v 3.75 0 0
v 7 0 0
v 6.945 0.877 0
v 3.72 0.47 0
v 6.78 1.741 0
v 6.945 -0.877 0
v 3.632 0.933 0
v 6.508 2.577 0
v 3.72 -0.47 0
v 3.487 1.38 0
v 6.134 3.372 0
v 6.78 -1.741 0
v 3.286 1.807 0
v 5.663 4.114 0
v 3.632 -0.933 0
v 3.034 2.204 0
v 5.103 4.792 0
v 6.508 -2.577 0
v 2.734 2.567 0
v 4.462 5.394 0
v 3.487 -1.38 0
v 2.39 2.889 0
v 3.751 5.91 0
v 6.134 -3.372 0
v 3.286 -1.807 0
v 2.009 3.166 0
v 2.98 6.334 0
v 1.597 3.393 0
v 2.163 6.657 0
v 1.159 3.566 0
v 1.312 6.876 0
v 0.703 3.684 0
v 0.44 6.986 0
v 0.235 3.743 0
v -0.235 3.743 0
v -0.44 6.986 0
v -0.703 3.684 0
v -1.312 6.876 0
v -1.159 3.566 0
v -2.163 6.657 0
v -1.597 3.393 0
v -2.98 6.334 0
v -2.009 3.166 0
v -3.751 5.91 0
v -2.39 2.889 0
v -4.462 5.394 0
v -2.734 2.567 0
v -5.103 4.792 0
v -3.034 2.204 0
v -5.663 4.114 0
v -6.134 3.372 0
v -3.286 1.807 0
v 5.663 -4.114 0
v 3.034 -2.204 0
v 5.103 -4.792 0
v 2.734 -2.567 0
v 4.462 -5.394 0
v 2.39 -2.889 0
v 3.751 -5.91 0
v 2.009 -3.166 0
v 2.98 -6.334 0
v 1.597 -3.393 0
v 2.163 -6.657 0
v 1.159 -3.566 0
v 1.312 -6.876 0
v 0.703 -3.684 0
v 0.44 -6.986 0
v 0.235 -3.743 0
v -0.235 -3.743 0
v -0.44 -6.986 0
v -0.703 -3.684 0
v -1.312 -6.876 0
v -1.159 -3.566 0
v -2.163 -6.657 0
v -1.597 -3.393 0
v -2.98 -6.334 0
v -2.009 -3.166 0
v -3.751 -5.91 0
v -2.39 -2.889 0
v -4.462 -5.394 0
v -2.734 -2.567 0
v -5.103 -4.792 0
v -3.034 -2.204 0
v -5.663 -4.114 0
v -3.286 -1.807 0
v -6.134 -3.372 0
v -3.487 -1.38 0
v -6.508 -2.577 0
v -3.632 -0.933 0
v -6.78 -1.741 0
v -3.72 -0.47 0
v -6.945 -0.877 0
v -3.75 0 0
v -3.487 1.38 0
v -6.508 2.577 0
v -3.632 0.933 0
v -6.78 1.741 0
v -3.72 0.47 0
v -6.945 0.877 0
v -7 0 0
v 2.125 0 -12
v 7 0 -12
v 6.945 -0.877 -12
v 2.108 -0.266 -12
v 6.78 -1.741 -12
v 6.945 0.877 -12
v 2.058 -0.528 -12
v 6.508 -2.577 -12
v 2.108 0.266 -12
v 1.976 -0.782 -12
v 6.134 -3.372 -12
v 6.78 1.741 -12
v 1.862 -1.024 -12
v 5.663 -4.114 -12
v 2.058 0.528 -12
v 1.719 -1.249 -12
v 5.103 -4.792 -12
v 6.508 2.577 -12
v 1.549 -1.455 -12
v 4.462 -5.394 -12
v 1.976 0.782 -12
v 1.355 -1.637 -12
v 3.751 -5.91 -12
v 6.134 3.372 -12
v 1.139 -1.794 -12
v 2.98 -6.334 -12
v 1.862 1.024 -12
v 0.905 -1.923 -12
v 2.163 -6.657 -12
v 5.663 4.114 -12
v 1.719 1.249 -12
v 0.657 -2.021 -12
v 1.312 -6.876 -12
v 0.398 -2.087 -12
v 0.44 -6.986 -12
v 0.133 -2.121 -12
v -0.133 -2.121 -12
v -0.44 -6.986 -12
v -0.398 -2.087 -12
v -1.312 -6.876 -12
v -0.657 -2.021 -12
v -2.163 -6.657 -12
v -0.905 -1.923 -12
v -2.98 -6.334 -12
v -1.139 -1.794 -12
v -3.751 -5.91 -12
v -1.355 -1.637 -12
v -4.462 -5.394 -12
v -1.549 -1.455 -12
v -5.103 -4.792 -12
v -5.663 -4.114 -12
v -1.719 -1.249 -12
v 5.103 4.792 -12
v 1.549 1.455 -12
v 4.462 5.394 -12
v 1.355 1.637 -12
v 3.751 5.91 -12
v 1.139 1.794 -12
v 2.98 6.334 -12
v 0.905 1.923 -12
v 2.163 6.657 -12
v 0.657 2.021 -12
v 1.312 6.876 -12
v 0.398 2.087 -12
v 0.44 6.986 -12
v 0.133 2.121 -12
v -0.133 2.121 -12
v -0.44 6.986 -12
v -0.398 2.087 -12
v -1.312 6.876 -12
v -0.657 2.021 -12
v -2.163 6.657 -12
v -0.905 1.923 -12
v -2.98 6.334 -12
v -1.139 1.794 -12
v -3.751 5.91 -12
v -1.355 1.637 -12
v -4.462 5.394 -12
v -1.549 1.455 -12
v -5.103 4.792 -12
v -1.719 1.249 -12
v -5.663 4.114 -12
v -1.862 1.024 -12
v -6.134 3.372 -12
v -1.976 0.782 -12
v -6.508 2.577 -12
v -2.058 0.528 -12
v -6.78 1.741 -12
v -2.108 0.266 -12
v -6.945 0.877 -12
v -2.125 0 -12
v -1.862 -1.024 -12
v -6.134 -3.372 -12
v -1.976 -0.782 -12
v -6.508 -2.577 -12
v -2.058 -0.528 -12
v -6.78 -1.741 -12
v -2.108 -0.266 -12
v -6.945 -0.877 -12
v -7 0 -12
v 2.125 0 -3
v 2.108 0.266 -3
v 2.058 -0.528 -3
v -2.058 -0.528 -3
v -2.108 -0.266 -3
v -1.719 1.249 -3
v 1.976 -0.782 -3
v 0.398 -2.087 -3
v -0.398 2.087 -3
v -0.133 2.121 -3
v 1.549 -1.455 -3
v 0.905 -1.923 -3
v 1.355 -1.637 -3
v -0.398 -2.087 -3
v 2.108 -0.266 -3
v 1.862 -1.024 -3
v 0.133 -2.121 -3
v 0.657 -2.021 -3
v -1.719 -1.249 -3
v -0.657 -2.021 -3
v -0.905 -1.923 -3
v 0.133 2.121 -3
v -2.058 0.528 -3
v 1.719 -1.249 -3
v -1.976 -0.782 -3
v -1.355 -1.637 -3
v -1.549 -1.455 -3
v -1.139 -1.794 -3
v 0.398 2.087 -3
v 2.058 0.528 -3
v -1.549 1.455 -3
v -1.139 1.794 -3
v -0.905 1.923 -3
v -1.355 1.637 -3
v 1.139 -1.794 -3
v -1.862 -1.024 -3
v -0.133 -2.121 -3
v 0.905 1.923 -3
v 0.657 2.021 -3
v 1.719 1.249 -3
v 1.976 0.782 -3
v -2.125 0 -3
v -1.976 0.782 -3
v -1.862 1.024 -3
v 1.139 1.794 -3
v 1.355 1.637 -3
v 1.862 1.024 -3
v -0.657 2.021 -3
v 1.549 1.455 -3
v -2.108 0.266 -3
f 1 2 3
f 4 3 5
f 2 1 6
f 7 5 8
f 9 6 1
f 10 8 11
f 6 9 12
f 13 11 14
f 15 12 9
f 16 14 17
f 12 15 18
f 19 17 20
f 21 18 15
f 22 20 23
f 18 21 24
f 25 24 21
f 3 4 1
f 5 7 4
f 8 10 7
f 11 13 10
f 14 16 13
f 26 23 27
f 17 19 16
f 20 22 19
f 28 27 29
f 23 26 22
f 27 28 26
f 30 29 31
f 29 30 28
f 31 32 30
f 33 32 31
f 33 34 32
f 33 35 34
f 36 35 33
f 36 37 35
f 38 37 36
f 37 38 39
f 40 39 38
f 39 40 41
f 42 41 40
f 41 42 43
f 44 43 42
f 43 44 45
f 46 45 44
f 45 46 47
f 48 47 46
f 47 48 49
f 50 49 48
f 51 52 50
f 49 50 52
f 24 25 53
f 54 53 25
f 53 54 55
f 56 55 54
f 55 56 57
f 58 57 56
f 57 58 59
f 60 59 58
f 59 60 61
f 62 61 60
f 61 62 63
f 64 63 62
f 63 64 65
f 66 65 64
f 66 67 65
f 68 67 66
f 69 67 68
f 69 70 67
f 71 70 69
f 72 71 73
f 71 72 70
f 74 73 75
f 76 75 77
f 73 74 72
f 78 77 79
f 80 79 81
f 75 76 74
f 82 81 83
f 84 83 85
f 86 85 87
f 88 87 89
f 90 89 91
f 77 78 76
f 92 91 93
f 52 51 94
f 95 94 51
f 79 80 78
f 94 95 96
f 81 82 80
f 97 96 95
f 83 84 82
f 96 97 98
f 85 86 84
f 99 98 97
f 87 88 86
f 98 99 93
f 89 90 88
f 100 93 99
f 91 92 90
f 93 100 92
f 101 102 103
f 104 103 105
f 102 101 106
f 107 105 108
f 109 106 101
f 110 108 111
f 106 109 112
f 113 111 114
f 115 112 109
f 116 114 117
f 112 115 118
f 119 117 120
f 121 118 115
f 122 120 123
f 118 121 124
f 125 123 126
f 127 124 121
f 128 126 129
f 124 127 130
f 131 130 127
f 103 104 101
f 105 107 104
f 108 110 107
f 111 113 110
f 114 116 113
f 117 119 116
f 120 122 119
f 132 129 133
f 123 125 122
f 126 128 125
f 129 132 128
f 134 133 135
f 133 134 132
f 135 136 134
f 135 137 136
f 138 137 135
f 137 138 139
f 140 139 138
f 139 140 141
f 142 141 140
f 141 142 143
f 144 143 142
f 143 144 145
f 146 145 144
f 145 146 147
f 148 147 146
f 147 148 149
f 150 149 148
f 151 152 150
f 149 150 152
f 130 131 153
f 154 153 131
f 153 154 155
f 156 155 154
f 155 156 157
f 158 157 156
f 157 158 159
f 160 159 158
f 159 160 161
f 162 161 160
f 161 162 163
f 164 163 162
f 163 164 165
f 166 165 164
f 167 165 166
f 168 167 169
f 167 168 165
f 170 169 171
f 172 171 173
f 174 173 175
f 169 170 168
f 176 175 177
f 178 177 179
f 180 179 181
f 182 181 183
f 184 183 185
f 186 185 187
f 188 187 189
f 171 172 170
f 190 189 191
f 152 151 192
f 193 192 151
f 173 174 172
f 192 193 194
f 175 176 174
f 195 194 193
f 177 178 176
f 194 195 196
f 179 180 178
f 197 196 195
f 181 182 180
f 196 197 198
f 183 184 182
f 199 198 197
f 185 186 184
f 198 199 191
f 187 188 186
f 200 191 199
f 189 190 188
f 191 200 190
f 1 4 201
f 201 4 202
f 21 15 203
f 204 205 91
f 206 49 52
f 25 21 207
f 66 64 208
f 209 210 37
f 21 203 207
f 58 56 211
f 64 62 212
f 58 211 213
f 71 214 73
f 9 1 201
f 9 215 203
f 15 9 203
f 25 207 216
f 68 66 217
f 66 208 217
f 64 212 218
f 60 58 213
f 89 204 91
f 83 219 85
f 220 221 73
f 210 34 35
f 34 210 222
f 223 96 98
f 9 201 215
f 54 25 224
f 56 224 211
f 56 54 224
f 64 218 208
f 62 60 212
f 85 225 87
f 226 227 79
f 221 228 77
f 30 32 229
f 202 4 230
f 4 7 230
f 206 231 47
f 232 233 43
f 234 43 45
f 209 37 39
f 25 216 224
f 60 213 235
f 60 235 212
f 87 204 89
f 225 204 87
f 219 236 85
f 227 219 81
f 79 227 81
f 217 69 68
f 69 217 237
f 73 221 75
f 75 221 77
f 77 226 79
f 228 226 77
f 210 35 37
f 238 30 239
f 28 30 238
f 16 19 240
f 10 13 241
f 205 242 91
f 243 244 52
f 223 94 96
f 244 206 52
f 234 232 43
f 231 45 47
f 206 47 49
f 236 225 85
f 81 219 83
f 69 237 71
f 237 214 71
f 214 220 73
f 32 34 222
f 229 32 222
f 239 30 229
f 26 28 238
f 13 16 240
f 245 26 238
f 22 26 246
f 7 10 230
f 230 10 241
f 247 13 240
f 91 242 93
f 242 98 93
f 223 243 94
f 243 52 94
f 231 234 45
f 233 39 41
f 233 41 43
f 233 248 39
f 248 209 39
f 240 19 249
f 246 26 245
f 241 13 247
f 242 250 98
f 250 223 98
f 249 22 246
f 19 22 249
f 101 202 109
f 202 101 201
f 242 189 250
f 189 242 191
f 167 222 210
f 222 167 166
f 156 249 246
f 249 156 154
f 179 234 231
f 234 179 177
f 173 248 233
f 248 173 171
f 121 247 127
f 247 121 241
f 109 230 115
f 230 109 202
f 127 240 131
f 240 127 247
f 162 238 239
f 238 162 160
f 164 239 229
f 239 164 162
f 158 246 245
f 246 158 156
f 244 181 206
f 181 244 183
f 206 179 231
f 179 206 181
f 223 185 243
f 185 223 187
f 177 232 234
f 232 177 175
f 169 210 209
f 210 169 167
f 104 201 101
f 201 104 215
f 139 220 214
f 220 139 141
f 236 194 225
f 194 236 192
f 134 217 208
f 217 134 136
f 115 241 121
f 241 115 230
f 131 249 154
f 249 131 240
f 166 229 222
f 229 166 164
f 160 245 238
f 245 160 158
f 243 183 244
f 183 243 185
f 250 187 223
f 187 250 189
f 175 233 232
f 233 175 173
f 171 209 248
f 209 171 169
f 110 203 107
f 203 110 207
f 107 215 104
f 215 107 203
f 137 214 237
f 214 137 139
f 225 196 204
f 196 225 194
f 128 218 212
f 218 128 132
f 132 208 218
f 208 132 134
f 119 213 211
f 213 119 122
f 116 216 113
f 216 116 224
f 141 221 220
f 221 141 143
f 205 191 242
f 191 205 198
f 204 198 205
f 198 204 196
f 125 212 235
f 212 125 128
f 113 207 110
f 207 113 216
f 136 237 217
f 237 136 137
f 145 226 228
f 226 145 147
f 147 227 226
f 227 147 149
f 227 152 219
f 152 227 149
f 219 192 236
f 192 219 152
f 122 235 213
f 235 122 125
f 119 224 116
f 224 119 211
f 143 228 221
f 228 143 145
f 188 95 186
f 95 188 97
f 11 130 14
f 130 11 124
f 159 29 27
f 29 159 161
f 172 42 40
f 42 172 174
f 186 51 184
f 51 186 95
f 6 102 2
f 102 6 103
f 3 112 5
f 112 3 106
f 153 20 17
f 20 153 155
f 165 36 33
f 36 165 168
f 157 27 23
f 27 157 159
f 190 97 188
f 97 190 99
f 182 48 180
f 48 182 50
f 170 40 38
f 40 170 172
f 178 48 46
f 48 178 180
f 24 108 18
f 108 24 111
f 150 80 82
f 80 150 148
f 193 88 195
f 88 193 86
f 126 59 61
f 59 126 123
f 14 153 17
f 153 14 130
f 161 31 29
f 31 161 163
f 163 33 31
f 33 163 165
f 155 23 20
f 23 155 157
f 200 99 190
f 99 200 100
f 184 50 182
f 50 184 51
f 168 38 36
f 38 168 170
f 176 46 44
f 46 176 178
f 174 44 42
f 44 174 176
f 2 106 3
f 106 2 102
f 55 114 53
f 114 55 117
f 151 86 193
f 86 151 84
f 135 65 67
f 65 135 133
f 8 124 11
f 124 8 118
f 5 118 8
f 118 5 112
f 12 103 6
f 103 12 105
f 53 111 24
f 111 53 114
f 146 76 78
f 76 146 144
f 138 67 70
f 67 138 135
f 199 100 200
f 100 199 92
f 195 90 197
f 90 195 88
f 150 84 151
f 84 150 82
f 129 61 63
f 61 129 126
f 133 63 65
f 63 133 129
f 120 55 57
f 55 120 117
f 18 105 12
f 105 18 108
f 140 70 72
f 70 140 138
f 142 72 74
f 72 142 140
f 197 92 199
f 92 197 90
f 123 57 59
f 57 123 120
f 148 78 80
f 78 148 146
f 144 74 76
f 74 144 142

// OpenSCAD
$fn = 50;


difference() {
	union() {
		translate(v = [0, 0, -12.0000000000]) {
			cylinder(h = 12, r = 7.0000000000);
		}
		cylinder(h = 0, r = 13.0000000000);
	}
	union() {
		translate(v = [0, 0, 0]) {
			rotate(a = [0, 0, 0]) {
				difference() {
					union() {
						#translate(v = [0, 0, -12.0000000000]) {
							cylinder(h = 12, r = 2.0000000000);
						}
						#translate(v = [0, 0, -3]) {
							cylinder(h = 3, r1 = 2.1250000000, r2 = 3.7500000000);
						}
						#translate(v = [0, 0, -12.0000000000]) {
							cylinder(h = 12, r = 2.1250000000);
						}
						#translate(v = [0, 0, -12.0000000000]) {
							cylinder(h = 12, r = 2.0000000000);
						}
					}
					union();
				}
			}
		}
	}
}
